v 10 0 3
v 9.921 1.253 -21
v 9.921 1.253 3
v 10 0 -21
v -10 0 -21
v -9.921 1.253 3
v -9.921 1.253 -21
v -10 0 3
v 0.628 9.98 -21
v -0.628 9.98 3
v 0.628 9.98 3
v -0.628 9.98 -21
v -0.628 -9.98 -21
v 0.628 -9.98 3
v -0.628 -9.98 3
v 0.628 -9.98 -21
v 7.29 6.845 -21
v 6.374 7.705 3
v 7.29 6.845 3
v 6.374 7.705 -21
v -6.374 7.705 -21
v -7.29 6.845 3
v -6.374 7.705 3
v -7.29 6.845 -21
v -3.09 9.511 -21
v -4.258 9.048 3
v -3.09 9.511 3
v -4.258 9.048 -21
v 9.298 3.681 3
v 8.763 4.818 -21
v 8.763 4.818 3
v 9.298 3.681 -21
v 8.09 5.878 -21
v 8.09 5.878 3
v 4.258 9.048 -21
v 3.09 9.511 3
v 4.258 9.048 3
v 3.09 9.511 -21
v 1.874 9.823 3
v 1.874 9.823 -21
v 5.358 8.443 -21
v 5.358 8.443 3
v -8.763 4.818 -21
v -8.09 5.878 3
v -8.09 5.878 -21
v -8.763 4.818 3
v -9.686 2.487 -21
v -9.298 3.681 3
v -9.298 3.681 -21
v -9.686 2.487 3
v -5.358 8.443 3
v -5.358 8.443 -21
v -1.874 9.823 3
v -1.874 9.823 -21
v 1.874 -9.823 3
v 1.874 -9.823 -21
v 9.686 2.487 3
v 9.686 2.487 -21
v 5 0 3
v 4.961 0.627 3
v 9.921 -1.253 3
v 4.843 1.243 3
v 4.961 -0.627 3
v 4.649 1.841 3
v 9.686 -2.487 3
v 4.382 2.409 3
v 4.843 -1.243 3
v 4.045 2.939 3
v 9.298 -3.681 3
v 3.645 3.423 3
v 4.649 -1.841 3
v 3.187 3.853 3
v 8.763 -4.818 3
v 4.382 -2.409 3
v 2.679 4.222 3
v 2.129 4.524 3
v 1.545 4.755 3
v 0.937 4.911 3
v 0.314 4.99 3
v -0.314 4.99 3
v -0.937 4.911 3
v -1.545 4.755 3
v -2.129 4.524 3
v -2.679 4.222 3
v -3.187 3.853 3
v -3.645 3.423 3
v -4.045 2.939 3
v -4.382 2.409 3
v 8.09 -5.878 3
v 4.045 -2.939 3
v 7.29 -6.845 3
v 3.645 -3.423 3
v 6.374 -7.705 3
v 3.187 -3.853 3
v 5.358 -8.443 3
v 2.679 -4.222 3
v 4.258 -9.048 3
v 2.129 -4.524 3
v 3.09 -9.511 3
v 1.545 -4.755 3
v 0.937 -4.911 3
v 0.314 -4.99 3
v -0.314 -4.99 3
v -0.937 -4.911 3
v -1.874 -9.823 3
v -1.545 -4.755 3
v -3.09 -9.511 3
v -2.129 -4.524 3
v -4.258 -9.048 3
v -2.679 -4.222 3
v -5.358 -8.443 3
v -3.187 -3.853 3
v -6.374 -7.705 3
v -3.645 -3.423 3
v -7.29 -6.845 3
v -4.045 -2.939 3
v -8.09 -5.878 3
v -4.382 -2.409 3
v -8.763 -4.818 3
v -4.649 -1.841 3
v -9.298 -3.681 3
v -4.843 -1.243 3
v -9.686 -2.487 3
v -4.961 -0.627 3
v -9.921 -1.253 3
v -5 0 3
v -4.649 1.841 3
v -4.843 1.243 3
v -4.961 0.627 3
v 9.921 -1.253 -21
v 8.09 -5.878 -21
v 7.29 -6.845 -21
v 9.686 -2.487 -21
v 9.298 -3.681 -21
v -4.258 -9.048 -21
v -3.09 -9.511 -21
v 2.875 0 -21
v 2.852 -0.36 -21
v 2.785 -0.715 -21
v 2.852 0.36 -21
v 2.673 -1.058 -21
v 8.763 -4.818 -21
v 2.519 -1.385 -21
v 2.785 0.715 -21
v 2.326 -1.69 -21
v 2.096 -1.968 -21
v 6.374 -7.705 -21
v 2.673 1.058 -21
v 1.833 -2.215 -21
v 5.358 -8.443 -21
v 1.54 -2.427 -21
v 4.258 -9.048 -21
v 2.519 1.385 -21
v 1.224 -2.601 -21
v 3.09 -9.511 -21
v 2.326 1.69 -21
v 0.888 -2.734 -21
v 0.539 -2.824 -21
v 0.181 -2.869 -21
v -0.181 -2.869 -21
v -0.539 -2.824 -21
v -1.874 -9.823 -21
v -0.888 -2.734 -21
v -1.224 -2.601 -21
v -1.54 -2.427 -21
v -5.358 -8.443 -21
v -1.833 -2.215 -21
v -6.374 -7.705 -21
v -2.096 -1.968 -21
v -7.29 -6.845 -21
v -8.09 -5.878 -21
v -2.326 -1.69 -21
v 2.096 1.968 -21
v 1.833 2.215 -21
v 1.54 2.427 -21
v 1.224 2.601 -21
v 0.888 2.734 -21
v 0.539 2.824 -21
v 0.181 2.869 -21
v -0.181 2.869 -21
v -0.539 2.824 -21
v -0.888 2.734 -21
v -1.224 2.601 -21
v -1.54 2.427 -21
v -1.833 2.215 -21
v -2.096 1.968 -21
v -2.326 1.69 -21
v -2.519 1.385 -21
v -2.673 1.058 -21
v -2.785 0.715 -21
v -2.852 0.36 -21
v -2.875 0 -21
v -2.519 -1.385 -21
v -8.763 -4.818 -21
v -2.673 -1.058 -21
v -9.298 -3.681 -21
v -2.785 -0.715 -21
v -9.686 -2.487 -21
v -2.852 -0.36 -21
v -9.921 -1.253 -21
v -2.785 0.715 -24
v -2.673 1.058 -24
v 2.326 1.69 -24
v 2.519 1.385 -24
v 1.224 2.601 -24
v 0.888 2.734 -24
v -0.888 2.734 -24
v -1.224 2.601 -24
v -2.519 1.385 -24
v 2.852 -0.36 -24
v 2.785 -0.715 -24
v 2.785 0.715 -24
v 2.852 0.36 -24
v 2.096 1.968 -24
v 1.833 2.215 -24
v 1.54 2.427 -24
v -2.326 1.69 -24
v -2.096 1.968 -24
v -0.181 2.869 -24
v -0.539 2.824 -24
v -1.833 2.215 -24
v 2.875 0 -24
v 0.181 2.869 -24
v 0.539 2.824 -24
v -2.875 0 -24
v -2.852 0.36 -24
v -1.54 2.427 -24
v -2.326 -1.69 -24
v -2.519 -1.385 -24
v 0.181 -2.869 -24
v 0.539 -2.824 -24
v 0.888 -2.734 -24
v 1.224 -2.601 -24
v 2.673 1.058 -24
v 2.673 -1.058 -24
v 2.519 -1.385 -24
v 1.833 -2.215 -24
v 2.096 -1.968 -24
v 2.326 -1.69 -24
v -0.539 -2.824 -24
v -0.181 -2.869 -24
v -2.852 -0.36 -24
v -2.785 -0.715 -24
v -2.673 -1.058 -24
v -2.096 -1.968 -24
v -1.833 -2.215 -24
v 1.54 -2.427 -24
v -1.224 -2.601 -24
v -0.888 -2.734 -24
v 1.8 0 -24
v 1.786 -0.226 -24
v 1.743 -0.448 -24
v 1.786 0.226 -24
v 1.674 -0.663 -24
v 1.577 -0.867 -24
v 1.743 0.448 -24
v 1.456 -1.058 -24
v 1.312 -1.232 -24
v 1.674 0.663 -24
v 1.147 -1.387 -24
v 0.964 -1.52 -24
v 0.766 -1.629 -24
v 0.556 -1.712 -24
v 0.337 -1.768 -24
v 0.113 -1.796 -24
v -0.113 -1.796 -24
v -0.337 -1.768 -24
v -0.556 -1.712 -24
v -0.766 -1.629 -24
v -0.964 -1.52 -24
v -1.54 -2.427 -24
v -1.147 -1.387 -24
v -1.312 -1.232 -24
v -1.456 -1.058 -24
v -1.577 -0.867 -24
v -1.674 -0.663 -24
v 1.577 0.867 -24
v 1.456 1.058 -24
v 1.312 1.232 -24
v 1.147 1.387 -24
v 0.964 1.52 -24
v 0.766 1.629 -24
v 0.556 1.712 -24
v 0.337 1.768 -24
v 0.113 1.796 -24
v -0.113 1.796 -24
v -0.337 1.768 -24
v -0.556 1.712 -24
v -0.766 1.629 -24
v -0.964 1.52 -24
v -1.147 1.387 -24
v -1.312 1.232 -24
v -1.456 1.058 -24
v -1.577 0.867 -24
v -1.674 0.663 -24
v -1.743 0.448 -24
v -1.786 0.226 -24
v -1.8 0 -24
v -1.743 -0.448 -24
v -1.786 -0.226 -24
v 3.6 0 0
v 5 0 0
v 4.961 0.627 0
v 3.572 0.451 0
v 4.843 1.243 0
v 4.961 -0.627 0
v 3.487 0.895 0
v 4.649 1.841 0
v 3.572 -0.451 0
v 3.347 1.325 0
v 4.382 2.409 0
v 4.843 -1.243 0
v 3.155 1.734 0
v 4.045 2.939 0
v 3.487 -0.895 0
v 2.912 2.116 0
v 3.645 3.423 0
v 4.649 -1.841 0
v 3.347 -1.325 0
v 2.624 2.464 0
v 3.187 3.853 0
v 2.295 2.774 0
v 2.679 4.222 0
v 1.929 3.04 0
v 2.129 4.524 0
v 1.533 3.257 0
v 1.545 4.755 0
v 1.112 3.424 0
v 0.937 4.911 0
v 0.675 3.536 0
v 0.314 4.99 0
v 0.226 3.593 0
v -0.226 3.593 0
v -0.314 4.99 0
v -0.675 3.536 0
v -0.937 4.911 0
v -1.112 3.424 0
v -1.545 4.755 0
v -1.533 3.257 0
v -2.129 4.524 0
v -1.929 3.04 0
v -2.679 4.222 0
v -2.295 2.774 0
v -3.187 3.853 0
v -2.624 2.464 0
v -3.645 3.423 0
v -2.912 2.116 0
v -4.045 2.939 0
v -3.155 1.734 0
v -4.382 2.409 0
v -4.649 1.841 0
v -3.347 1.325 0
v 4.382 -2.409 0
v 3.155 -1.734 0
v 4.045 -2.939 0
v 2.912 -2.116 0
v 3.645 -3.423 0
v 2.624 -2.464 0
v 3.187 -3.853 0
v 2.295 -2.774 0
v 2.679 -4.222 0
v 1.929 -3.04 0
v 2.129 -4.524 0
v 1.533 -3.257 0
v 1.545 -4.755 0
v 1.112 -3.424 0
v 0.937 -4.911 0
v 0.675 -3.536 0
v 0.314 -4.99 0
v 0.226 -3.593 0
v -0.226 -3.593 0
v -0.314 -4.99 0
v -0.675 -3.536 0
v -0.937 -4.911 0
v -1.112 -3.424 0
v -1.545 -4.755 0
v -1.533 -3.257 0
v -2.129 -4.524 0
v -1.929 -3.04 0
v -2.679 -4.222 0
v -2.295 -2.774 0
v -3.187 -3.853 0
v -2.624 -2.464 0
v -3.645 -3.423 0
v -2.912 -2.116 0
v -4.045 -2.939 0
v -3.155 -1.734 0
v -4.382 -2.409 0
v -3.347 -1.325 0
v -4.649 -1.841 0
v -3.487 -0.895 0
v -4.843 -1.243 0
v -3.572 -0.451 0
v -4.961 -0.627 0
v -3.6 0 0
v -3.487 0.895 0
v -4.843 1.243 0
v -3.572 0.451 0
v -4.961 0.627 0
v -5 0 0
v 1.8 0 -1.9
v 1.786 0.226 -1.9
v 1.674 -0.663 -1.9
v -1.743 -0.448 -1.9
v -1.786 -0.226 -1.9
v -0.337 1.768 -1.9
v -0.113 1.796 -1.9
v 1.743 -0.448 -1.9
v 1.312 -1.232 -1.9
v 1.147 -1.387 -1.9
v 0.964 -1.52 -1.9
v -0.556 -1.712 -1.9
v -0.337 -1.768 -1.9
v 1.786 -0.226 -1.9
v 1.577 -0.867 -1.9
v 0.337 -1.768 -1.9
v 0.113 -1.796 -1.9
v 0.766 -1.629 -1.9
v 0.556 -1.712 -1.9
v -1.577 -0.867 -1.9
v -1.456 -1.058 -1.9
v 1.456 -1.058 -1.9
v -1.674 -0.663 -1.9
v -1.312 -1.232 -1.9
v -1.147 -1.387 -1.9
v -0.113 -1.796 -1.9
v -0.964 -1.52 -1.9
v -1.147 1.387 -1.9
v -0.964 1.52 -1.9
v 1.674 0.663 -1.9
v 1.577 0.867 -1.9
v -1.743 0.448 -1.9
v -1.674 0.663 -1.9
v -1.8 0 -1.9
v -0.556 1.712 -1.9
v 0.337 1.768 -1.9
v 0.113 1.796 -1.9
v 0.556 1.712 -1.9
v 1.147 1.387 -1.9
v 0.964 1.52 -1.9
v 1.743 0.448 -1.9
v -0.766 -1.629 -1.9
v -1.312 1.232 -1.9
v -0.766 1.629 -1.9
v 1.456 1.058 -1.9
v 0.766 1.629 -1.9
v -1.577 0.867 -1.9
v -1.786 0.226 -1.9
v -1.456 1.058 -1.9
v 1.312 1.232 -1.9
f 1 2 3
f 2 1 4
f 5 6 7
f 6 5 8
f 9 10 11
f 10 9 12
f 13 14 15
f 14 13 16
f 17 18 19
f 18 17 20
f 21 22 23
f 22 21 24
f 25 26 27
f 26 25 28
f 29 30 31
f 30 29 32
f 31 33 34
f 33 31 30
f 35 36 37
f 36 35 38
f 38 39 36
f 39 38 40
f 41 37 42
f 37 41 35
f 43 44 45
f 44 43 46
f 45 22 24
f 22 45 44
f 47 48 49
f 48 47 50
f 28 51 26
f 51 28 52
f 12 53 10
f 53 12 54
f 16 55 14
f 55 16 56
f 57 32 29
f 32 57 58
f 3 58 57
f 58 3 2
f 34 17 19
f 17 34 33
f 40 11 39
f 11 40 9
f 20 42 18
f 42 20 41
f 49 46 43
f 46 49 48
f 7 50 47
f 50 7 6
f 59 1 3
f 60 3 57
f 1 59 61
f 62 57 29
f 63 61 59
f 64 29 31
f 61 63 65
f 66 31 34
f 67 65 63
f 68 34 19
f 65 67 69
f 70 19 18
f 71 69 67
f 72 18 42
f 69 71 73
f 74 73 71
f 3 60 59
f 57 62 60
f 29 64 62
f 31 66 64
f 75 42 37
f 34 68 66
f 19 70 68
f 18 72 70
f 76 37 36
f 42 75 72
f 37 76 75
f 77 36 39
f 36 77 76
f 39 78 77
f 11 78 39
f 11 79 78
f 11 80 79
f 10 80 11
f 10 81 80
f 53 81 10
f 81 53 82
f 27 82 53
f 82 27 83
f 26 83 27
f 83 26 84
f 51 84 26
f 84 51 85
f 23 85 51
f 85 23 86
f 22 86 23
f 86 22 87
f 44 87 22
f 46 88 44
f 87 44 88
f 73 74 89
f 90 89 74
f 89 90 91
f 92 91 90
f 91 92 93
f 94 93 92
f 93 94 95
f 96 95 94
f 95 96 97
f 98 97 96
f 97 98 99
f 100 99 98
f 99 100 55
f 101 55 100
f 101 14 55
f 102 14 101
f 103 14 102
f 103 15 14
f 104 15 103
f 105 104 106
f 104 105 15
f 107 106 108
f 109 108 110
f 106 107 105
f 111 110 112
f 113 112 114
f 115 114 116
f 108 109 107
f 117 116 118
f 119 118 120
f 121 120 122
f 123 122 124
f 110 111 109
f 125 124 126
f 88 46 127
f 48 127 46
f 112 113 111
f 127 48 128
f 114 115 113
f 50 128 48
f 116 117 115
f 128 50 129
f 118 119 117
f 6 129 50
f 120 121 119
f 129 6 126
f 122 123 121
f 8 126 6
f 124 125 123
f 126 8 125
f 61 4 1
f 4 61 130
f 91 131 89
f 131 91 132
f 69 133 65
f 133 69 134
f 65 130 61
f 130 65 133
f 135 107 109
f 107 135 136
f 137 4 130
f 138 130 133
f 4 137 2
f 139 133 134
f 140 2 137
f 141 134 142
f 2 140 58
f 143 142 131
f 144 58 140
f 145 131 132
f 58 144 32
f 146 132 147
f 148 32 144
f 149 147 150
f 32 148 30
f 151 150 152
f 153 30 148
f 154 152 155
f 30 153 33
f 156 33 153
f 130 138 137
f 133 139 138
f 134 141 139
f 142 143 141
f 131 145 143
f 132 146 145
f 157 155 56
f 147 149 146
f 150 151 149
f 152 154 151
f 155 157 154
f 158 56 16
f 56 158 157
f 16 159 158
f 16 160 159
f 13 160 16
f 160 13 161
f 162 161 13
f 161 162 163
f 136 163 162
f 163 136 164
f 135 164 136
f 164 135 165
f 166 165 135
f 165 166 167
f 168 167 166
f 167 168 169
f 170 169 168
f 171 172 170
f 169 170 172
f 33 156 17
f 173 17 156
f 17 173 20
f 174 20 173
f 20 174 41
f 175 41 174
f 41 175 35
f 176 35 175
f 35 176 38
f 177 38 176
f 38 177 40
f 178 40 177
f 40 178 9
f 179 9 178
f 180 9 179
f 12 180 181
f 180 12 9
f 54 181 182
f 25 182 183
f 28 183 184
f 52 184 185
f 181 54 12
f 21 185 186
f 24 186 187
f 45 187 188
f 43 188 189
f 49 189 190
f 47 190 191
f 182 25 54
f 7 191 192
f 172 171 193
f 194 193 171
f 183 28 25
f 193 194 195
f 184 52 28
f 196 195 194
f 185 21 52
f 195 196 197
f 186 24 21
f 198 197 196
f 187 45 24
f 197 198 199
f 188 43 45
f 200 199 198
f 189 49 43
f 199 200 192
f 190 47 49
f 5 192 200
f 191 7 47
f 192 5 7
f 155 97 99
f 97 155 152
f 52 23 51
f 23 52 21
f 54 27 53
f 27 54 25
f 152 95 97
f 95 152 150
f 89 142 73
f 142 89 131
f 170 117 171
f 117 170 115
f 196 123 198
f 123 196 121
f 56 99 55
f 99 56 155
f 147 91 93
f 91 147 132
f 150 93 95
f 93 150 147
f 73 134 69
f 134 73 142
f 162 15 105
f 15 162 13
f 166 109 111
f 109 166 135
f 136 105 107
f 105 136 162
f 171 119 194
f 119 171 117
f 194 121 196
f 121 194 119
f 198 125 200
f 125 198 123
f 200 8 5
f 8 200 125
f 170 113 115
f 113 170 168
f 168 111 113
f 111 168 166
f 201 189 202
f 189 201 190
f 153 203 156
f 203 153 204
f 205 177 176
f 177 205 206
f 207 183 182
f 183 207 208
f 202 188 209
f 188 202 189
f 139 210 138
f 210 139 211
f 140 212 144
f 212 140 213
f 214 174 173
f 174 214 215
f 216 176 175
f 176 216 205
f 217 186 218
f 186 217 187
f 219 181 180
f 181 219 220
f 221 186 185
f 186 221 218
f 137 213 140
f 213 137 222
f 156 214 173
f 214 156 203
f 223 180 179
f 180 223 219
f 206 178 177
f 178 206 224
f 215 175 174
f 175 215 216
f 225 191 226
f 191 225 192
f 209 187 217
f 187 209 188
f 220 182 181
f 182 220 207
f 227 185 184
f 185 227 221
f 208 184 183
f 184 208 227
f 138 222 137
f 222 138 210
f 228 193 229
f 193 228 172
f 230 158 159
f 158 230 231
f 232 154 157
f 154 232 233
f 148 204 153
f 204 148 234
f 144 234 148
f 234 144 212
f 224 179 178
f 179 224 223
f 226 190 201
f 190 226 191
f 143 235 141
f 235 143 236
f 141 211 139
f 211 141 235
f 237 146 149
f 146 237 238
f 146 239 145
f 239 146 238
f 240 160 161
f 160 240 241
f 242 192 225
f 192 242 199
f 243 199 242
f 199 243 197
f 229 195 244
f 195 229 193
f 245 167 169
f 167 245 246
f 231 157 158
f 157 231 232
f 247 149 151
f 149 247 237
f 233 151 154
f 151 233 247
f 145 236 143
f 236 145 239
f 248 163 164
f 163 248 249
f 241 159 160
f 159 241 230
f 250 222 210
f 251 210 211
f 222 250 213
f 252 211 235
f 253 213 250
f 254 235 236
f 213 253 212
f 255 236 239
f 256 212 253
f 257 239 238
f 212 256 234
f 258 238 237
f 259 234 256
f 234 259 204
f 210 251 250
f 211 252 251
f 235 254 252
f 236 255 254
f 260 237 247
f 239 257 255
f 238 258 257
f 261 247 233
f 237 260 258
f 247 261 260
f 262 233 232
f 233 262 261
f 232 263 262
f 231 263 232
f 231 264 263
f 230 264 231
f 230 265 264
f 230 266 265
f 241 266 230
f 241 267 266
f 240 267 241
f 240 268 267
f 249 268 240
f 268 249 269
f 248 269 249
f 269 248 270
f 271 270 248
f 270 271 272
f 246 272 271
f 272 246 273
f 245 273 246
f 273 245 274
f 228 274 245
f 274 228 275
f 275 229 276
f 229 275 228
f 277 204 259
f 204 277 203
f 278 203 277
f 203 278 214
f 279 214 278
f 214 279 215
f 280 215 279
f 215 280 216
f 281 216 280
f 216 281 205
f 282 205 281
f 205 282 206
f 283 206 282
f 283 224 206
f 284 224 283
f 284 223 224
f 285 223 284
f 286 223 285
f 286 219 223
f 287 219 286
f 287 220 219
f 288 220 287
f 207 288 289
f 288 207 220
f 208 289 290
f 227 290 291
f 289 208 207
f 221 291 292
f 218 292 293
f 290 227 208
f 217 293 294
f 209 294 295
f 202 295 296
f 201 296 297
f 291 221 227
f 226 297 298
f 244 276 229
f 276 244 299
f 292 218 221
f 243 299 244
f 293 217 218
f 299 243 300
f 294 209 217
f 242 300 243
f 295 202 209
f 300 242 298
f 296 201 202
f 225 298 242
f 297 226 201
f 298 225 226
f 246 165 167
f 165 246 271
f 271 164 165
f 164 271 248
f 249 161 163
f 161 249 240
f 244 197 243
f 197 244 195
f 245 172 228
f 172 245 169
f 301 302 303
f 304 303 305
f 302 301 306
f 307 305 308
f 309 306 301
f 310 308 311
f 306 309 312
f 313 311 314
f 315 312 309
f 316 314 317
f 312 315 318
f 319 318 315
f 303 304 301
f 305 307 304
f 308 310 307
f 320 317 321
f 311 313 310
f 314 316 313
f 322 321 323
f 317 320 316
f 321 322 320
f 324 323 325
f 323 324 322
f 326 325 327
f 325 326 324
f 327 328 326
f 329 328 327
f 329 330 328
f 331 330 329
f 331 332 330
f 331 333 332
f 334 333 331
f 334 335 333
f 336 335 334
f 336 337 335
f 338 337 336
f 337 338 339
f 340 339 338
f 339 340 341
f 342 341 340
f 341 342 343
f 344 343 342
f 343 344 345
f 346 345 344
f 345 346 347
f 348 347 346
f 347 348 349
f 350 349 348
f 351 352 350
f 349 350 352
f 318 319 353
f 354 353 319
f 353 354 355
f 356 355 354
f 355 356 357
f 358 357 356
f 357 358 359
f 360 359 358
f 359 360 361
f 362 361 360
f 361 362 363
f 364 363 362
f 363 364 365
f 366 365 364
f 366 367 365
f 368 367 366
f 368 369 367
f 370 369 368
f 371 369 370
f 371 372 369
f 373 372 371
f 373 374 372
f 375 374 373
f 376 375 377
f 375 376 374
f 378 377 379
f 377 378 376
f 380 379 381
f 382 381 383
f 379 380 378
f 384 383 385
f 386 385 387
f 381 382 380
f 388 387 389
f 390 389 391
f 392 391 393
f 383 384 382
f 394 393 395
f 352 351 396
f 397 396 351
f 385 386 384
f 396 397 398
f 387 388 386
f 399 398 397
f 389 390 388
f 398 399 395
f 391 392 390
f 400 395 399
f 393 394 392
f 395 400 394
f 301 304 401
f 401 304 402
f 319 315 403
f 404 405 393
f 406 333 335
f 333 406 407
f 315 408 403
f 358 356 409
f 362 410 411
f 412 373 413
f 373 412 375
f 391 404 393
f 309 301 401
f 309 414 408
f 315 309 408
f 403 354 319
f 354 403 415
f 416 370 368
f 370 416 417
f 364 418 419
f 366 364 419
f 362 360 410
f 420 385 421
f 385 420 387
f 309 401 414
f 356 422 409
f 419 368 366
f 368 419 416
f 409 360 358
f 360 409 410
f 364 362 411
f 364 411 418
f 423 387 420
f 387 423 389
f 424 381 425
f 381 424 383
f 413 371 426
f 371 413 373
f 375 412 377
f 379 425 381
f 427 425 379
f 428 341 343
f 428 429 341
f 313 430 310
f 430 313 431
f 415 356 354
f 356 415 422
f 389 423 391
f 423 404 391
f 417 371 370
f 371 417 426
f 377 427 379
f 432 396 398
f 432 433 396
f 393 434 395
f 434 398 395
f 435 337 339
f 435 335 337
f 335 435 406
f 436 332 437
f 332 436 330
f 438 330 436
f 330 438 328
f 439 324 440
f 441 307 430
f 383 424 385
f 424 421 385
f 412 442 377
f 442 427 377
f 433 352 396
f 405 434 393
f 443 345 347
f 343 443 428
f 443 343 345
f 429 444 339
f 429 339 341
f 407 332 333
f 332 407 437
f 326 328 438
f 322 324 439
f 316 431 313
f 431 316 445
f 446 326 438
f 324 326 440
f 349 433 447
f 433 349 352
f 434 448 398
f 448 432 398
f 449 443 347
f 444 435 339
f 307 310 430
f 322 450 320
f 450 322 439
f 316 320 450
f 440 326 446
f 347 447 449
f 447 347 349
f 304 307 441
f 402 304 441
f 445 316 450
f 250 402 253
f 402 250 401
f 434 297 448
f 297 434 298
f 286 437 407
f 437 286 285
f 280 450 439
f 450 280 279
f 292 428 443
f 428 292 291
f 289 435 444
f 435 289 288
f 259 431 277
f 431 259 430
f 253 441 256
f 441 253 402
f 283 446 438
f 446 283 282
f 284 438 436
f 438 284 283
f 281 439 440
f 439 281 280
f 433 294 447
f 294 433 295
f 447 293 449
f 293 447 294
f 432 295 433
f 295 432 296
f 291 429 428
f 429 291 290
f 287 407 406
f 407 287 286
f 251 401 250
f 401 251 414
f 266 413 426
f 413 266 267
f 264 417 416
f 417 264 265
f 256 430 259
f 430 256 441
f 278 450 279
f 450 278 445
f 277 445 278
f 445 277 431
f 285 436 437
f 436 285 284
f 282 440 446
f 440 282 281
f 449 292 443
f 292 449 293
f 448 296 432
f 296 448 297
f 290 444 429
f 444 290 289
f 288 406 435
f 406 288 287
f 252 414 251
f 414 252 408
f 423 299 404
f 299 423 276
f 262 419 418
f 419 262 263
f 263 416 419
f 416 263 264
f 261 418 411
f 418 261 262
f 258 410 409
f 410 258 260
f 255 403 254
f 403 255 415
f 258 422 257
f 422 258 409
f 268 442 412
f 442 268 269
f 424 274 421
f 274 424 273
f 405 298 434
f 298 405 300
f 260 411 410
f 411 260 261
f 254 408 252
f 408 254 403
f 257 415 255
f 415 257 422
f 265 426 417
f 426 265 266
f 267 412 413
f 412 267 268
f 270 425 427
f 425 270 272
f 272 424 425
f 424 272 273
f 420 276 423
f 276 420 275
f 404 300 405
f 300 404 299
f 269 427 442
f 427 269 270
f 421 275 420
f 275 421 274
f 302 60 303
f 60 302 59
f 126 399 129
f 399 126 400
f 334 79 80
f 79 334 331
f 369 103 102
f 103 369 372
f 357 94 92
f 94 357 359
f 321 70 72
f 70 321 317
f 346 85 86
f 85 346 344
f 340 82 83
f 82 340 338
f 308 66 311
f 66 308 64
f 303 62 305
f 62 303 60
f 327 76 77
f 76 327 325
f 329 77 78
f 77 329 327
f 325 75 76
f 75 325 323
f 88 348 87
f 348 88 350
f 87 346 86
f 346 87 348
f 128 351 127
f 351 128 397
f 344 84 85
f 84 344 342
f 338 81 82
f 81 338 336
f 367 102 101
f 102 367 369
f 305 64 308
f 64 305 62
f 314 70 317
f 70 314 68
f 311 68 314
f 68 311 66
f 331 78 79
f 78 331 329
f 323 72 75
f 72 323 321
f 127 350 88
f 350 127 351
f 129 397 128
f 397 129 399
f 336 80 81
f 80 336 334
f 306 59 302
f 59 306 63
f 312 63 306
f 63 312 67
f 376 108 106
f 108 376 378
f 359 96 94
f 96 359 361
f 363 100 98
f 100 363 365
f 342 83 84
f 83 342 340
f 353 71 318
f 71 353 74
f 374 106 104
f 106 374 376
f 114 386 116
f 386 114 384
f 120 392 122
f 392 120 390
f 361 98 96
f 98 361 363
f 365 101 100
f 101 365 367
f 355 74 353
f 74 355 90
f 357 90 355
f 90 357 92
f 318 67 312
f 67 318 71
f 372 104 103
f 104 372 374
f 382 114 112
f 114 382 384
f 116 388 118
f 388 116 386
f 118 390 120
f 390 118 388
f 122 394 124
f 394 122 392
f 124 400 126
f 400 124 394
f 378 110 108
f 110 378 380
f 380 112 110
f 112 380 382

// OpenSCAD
$fn = 50;

difference() {
	union() {
		translate(v = [0, 0, -21.0]) {
			cylinder(h = 24, r = 10.0);
		}
		#translate(v = [0, 0, -24.0]) {
			cylinder(h = 24, r = 2.875);
		}
	}
	union() {
		translate(v = [0, 0, 0]) {
			rotate(a = [0, 0, 0]) {
				difference() {
					union() {
						translate(v = [0, 0, -24.0]) {
							cylinder(h = 24, r = 1.5);
						}
						translate(v = [0, 0, -1.9]) {
							cylinder(h = 1.9, r1 = 1.8, r2 = 3.6);
						}
						translate(v = [0, 0, -24.0]) {
							cylinder(h = 24, r = 1.8);
						}
						translate(v = [0, 0, -24.0]) {
							cylinder(h = 24, r = 1.5);
						}
					}
					union();
				}
			}
		}
		#cylinder(h = 3, r = 5.0);
	}
}
